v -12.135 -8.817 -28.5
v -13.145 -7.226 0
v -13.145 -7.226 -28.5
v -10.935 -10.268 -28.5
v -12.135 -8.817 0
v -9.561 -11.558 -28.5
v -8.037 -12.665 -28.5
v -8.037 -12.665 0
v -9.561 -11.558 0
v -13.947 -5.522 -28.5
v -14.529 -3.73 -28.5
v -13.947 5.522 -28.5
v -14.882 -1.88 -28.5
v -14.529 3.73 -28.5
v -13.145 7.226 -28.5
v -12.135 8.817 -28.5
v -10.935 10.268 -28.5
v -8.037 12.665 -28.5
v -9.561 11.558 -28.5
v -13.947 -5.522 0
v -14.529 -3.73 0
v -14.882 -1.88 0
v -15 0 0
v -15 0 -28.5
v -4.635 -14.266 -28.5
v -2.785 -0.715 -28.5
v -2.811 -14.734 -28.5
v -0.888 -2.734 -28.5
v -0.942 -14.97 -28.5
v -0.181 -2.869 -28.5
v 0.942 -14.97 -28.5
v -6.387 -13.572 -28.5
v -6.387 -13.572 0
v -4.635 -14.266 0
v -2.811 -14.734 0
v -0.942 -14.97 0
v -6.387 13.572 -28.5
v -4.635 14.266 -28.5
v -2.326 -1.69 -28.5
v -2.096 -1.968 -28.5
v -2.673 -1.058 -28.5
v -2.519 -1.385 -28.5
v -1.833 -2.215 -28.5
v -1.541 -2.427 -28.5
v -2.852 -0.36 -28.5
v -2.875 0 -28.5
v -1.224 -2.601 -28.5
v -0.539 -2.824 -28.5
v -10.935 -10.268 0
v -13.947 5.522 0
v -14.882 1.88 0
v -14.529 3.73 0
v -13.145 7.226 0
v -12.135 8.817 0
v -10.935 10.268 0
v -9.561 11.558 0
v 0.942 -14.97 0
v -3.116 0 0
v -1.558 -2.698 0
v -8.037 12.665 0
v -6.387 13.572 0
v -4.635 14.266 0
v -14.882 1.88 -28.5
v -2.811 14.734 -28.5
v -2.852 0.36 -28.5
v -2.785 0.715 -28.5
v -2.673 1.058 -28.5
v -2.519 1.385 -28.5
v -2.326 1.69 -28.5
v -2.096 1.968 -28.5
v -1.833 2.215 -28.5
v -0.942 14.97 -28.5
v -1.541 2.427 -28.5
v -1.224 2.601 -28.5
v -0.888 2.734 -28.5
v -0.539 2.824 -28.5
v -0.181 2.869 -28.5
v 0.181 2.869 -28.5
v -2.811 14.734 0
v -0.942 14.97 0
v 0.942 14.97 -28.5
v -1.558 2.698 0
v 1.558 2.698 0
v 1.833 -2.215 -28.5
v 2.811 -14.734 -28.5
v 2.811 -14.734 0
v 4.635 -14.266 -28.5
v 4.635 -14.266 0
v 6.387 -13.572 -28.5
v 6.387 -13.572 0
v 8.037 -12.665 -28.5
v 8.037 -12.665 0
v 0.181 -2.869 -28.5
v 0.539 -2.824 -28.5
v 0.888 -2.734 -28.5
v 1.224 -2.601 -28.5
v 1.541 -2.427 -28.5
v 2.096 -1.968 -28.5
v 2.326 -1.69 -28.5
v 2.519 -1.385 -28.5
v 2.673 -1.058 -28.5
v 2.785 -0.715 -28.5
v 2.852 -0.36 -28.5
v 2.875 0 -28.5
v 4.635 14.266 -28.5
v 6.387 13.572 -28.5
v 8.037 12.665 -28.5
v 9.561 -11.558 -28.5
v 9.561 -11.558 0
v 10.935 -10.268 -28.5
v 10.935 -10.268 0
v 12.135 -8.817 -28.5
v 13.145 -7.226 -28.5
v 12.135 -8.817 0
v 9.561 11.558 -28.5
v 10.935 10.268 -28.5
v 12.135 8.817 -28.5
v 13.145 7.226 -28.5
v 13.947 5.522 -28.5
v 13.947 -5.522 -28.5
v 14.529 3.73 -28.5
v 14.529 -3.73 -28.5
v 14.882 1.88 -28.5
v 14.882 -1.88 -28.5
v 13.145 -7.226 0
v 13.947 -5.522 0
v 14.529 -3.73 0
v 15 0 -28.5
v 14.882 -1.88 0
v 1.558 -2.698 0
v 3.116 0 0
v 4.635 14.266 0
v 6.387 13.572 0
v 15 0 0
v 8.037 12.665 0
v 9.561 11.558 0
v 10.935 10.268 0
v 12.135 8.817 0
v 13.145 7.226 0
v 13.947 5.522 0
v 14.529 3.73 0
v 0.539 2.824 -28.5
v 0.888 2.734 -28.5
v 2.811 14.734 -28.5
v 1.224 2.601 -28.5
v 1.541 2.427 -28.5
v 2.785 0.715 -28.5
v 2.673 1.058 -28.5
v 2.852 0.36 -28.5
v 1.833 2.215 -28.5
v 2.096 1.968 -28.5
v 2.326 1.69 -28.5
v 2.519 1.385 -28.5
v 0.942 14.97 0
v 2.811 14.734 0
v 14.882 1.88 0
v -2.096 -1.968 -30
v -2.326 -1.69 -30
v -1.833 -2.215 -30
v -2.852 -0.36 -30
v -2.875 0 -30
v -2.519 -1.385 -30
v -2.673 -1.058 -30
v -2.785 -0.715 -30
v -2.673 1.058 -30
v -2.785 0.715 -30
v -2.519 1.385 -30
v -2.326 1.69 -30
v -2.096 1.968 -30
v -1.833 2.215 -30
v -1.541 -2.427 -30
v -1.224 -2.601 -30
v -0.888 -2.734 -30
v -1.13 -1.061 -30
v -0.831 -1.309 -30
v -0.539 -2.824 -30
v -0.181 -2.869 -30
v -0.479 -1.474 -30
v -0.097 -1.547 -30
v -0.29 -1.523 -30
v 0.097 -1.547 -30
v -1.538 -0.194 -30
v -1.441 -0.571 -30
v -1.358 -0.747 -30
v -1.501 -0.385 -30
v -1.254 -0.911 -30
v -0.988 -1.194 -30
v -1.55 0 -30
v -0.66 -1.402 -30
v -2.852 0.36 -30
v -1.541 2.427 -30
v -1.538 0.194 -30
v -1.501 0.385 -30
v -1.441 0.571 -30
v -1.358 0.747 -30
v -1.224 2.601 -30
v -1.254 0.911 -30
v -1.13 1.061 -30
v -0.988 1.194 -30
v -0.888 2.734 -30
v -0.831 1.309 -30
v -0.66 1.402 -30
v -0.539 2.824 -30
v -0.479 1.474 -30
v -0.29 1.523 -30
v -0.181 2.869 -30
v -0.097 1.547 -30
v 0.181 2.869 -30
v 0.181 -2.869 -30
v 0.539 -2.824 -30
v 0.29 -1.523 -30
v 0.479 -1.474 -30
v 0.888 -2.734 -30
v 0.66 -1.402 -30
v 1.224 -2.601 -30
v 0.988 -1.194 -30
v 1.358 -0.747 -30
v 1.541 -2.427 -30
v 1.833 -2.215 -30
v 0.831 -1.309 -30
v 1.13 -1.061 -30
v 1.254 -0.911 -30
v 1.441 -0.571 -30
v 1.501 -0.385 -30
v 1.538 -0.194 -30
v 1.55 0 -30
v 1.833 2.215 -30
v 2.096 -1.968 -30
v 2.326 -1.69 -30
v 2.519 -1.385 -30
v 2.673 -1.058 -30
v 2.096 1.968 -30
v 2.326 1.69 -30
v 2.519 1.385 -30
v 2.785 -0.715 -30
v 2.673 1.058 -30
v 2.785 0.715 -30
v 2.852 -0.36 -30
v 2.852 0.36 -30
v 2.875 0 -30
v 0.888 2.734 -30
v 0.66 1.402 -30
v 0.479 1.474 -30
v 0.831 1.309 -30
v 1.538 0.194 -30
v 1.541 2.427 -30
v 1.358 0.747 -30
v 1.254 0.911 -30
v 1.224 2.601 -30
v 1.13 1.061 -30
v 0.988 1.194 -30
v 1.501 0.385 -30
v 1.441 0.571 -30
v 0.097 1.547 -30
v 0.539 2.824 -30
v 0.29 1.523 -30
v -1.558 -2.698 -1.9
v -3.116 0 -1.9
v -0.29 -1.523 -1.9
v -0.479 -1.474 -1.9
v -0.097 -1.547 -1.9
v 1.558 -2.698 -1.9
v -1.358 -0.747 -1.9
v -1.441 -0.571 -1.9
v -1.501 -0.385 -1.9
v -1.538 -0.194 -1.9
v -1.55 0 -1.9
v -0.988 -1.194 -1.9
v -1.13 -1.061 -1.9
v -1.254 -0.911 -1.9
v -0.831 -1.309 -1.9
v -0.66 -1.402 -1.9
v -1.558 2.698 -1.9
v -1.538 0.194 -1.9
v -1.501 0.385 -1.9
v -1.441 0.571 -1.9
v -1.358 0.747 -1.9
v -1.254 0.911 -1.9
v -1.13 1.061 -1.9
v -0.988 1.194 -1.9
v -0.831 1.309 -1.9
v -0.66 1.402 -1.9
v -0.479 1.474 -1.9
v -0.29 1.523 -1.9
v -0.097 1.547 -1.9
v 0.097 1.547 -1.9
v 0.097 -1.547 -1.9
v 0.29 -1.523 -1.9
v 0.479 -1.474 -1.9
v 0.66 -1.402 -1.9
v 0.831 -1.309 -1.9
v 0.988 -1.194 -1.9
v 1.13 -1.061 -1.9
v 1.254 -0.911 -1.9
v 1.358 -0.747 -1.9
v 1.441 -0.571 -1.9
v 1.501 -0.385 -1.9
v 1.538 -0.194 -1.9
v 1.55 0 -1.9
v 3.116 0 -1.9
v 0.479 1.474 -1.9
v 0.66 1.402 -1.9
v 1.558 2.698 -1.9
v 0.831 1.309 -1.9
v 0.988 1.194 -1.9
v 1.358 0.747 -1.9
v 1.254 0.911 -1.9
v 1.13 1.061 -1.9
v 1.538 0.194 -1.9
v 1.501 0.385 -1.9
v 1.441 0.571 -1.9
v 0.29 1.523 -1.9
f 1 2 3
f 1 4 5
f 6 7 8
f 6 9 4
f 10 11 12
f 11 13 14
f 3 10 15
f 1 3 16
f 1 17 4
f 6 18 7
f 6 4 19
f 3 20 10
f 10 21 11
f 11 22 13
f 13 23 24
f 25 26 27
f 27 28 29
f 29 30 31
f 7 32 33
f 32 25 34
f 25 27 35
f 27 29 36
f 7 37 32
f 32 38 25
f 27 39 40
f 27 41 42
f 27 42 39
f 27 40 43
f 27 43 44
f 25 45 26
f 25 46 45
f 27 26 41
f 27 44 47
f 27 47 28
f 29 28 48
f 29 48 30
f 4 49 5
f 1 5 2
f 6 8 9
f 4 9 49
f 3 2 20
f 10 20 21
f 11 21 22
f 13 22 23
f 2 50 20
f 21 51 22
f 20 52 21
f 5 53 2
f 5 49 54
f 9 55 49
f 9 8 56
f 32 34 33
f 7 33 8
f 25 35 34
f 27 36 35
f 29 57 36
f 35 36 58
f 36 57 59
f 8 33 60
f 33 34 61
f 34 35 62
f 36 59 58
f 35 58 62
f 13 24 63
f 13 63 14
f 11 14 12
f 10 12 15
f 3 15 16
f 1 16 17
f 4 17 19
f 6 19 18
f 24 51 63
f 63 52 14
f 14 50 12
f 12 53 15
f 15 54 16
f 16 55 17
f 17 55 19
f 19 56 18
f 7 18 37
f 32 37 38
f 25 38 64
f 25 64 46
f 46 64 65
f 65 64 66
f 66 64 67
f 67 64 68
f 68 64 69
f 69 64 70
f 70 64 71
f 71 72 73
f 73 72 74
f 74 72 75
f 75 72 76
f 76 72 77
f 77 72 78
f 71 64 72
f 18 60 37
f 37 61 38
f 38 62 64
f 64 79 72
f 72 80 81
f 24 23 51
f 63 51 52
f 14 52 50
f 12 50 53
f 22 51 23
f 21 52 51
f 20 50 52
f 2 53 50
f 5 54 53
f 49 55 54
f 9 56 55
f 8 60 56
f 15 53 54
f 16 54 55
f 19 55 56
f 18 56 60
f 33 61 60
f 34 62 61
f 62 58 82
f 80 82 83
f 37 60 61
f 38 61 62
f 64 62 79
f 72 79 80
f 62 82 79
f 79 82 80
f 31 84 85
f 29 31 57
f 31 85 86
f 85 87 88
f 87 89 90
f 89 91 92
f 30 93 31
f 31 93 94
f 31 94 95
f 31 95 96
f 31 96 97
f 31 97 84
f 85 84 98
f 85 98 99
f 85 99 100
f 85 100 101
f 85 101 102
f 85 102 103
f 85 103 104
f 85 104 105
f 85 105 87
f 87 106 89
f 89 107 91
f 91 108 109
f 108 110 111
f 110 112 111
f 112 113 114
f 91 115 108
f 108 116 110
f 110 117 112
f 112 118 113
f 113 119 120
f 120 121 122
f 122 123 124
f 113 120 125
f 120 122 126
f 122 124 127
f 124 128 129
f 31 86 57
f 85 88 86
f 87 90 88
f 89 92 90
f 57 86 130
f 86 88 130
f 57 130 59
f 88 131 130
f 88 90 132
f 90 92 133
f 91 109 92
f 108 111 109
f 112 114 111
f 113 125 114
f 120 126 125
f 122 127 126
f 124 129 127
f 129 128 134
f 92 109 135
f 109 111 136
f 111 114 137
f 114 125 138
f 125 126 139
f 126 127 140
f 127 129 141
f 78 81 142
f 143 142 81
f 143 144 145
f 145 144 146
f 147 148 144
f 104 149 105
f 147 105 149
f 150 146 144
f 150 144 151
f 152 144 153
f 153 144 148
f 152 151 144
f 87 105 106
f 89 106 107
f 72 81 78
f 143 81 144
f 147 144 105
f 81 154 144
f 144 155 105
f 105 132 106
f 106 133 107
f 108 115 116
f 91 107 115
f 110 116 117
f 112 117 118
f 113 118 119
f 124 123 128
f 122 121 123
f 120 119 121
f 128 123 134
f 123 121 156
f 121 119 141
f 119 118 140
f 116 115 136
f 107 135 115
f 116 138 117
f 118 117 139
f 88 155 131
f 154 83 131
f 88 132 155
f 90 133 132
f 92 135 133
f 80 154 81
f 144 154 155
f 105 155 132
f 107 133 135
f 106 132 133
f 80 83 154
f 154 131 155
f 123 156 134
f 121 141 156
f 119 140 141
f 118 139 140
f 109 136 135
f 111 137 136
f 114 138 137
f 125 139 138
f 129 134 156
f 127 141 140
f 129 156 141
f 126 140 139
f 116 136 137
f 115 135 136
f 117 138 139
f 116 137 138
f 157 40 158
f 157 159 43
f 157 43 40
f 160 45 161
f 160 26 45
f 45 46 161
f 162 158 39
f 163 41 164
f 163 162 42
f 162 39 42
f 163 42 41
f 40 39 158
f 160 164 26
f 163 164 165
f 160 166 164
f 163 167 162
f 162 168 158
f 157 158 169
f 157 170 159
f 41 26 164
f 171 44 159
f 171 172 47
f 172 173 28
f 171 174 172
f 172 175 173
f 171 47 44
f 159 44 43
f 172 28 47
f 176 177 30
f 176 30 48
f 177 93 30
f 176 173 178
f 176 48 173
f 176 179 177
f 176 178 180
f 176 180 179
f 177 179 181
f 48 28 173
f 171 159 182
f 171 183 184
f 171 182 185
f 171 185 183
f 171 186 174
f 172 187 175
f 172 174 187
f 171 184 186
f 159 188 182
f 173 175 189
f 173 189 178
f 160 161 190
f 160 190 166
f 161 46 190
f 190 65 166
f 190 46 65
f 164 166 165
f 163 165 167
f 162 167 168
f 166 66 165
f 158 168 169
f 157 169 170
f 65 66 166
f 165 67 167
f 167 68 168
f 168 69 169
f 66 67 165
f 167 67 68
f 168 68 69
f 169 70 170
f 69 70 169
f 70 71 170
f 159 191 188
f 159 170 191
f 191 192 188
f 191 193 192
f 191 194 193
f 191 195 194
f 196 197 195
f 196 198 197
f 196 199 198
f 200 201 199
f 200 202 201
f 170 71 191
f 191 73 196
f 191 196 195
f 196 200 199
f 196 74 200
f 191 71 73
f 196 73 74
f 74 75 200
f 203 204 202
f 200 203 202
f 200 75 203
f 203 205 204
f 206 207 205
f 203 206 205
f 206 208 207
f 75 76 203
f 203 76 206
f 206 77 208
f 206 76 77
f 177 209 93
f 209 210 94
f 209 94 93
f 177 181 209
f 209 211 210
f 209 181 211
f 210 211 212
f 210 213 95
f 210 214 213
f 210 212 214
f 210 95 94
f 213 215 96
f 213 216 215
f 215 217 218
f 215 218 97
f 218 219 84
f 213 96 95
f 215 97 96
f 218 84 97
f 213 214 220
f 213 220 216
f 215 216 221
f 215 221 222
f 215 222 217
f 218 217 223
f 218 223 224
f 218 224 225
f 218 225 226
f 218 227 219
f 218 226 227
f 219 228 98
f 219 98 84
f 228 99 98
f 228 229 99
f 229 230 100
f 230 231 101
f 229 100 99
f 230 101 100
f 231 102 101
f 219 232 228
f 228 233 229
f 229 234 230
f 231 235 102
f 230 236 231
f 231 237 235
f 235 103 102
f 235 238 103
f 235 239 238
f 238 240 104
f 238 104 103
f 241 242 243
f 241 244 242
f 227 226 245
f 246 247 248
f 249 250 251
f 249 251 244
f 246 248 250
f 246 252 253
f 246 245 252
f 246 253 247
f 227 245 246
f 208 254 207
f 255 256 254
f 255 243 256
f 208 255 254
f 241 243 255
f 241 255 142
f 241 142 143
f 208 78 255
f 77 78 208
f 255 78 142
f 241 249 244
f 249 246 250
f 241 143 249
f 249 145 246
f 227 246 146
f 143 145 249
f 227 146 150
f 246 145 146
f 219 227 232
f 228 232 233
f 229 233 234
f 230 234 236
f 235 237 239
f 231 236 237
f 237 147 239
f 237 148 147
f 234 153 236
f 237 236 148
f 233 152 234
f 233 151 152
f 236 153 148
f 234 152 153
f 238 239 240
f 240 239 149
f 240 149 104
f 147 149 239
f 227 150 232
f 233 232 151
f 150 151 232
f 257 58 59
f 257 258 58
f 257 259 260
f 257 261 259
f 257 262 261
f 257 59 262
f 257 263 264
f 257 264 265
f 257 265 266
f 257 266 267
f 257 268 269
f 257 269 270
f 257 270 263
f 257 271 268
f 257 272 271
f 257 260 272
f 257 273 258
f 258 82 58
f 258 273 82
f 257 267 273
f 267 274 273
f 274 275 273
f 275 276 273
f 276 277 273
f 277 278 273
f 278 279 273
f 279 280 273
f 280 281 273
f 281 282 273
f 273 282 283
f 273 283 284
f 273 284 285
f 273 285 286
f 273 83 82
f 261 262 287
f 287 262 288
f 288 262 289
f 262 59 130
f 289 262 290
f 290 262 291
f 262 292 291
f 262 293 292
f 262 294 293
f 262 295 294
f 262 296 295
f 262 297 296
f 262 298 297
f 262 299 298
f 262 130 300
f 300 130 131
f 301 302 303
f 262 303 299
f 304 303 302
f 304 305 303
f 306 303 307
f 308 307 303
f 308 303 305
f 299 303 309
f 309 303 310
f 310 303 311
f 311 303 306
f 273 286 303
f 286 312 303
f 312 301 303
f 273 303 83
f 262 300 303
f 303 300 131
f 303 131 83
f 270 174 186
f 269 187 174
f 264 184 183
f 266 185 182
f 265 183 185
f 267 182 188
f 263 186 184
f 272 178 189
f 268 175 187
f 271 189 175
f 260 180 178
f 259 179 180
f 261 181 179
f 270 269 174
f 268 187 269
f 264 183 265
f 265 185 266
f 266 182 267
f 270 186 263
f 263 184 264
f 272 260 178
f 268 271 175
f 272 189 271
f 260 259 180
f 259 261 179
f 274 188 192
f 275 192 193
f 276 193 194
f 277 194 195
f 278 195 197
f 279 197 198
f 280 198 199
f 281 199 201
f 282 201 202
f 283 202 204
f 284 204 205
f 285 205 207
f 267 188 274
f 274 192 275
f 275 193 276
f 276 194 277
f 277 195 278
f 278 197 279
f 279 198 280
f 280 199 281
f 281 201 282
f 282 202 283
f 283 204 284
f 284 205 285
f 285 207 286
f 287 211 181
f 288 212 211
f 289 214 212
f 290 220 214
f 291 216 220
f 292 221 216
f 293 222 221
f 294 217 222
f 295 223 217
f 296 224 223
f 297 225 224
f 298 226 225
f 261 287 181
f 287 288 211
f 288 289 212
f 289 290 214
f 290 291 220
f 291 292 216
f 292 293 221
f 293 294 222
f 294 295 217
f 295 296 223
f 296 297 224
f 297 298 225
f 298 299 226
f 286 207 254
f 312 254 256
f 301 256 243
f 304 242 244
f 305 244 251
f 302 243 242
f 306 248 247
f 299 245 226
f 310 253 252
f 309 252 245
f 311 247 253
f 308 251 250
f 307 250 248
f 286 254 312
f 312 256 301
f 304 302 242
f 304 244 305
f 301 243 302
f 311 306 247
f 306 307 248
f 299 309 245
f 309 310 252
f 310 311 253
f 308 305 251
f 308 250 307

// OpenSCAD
$fn = 50;

difference() {
	union() {
		translate(v = [0, 0, -28.5]) {
			cylinder(h = 28.5, r = 15.0);
		}
		#translate(v = [0, 0, -30.0]) {
			cylinder(h = 30, r = 2.875);
		}
	}
	union() {
		translate(v = [0, 0, 0]) {
			rotate(a = [0, 0, 0]) {
				difference() {
					union() {
						translate(v = [0, 0, -1.9]) {
							linear_extrude(height = 1.9) {
								polygon(points = [[3.1158, 0.0], [1.5579000000000005, 2.698361953111554], [-1.5578999999999994, 2.6983619531115544], [-3.1158, 3.815754496783323e-16], [-1.5579000000000014, -2.6983619531115535], [1.557899999999998, -2.6983619531115552]]);
							}
						}
					}
					union();
				}
			}
		}
		#translate(v = [0, 0, -100.0]) {
			cylinder(h = 200, r = 1.55);
		}
	}
}
